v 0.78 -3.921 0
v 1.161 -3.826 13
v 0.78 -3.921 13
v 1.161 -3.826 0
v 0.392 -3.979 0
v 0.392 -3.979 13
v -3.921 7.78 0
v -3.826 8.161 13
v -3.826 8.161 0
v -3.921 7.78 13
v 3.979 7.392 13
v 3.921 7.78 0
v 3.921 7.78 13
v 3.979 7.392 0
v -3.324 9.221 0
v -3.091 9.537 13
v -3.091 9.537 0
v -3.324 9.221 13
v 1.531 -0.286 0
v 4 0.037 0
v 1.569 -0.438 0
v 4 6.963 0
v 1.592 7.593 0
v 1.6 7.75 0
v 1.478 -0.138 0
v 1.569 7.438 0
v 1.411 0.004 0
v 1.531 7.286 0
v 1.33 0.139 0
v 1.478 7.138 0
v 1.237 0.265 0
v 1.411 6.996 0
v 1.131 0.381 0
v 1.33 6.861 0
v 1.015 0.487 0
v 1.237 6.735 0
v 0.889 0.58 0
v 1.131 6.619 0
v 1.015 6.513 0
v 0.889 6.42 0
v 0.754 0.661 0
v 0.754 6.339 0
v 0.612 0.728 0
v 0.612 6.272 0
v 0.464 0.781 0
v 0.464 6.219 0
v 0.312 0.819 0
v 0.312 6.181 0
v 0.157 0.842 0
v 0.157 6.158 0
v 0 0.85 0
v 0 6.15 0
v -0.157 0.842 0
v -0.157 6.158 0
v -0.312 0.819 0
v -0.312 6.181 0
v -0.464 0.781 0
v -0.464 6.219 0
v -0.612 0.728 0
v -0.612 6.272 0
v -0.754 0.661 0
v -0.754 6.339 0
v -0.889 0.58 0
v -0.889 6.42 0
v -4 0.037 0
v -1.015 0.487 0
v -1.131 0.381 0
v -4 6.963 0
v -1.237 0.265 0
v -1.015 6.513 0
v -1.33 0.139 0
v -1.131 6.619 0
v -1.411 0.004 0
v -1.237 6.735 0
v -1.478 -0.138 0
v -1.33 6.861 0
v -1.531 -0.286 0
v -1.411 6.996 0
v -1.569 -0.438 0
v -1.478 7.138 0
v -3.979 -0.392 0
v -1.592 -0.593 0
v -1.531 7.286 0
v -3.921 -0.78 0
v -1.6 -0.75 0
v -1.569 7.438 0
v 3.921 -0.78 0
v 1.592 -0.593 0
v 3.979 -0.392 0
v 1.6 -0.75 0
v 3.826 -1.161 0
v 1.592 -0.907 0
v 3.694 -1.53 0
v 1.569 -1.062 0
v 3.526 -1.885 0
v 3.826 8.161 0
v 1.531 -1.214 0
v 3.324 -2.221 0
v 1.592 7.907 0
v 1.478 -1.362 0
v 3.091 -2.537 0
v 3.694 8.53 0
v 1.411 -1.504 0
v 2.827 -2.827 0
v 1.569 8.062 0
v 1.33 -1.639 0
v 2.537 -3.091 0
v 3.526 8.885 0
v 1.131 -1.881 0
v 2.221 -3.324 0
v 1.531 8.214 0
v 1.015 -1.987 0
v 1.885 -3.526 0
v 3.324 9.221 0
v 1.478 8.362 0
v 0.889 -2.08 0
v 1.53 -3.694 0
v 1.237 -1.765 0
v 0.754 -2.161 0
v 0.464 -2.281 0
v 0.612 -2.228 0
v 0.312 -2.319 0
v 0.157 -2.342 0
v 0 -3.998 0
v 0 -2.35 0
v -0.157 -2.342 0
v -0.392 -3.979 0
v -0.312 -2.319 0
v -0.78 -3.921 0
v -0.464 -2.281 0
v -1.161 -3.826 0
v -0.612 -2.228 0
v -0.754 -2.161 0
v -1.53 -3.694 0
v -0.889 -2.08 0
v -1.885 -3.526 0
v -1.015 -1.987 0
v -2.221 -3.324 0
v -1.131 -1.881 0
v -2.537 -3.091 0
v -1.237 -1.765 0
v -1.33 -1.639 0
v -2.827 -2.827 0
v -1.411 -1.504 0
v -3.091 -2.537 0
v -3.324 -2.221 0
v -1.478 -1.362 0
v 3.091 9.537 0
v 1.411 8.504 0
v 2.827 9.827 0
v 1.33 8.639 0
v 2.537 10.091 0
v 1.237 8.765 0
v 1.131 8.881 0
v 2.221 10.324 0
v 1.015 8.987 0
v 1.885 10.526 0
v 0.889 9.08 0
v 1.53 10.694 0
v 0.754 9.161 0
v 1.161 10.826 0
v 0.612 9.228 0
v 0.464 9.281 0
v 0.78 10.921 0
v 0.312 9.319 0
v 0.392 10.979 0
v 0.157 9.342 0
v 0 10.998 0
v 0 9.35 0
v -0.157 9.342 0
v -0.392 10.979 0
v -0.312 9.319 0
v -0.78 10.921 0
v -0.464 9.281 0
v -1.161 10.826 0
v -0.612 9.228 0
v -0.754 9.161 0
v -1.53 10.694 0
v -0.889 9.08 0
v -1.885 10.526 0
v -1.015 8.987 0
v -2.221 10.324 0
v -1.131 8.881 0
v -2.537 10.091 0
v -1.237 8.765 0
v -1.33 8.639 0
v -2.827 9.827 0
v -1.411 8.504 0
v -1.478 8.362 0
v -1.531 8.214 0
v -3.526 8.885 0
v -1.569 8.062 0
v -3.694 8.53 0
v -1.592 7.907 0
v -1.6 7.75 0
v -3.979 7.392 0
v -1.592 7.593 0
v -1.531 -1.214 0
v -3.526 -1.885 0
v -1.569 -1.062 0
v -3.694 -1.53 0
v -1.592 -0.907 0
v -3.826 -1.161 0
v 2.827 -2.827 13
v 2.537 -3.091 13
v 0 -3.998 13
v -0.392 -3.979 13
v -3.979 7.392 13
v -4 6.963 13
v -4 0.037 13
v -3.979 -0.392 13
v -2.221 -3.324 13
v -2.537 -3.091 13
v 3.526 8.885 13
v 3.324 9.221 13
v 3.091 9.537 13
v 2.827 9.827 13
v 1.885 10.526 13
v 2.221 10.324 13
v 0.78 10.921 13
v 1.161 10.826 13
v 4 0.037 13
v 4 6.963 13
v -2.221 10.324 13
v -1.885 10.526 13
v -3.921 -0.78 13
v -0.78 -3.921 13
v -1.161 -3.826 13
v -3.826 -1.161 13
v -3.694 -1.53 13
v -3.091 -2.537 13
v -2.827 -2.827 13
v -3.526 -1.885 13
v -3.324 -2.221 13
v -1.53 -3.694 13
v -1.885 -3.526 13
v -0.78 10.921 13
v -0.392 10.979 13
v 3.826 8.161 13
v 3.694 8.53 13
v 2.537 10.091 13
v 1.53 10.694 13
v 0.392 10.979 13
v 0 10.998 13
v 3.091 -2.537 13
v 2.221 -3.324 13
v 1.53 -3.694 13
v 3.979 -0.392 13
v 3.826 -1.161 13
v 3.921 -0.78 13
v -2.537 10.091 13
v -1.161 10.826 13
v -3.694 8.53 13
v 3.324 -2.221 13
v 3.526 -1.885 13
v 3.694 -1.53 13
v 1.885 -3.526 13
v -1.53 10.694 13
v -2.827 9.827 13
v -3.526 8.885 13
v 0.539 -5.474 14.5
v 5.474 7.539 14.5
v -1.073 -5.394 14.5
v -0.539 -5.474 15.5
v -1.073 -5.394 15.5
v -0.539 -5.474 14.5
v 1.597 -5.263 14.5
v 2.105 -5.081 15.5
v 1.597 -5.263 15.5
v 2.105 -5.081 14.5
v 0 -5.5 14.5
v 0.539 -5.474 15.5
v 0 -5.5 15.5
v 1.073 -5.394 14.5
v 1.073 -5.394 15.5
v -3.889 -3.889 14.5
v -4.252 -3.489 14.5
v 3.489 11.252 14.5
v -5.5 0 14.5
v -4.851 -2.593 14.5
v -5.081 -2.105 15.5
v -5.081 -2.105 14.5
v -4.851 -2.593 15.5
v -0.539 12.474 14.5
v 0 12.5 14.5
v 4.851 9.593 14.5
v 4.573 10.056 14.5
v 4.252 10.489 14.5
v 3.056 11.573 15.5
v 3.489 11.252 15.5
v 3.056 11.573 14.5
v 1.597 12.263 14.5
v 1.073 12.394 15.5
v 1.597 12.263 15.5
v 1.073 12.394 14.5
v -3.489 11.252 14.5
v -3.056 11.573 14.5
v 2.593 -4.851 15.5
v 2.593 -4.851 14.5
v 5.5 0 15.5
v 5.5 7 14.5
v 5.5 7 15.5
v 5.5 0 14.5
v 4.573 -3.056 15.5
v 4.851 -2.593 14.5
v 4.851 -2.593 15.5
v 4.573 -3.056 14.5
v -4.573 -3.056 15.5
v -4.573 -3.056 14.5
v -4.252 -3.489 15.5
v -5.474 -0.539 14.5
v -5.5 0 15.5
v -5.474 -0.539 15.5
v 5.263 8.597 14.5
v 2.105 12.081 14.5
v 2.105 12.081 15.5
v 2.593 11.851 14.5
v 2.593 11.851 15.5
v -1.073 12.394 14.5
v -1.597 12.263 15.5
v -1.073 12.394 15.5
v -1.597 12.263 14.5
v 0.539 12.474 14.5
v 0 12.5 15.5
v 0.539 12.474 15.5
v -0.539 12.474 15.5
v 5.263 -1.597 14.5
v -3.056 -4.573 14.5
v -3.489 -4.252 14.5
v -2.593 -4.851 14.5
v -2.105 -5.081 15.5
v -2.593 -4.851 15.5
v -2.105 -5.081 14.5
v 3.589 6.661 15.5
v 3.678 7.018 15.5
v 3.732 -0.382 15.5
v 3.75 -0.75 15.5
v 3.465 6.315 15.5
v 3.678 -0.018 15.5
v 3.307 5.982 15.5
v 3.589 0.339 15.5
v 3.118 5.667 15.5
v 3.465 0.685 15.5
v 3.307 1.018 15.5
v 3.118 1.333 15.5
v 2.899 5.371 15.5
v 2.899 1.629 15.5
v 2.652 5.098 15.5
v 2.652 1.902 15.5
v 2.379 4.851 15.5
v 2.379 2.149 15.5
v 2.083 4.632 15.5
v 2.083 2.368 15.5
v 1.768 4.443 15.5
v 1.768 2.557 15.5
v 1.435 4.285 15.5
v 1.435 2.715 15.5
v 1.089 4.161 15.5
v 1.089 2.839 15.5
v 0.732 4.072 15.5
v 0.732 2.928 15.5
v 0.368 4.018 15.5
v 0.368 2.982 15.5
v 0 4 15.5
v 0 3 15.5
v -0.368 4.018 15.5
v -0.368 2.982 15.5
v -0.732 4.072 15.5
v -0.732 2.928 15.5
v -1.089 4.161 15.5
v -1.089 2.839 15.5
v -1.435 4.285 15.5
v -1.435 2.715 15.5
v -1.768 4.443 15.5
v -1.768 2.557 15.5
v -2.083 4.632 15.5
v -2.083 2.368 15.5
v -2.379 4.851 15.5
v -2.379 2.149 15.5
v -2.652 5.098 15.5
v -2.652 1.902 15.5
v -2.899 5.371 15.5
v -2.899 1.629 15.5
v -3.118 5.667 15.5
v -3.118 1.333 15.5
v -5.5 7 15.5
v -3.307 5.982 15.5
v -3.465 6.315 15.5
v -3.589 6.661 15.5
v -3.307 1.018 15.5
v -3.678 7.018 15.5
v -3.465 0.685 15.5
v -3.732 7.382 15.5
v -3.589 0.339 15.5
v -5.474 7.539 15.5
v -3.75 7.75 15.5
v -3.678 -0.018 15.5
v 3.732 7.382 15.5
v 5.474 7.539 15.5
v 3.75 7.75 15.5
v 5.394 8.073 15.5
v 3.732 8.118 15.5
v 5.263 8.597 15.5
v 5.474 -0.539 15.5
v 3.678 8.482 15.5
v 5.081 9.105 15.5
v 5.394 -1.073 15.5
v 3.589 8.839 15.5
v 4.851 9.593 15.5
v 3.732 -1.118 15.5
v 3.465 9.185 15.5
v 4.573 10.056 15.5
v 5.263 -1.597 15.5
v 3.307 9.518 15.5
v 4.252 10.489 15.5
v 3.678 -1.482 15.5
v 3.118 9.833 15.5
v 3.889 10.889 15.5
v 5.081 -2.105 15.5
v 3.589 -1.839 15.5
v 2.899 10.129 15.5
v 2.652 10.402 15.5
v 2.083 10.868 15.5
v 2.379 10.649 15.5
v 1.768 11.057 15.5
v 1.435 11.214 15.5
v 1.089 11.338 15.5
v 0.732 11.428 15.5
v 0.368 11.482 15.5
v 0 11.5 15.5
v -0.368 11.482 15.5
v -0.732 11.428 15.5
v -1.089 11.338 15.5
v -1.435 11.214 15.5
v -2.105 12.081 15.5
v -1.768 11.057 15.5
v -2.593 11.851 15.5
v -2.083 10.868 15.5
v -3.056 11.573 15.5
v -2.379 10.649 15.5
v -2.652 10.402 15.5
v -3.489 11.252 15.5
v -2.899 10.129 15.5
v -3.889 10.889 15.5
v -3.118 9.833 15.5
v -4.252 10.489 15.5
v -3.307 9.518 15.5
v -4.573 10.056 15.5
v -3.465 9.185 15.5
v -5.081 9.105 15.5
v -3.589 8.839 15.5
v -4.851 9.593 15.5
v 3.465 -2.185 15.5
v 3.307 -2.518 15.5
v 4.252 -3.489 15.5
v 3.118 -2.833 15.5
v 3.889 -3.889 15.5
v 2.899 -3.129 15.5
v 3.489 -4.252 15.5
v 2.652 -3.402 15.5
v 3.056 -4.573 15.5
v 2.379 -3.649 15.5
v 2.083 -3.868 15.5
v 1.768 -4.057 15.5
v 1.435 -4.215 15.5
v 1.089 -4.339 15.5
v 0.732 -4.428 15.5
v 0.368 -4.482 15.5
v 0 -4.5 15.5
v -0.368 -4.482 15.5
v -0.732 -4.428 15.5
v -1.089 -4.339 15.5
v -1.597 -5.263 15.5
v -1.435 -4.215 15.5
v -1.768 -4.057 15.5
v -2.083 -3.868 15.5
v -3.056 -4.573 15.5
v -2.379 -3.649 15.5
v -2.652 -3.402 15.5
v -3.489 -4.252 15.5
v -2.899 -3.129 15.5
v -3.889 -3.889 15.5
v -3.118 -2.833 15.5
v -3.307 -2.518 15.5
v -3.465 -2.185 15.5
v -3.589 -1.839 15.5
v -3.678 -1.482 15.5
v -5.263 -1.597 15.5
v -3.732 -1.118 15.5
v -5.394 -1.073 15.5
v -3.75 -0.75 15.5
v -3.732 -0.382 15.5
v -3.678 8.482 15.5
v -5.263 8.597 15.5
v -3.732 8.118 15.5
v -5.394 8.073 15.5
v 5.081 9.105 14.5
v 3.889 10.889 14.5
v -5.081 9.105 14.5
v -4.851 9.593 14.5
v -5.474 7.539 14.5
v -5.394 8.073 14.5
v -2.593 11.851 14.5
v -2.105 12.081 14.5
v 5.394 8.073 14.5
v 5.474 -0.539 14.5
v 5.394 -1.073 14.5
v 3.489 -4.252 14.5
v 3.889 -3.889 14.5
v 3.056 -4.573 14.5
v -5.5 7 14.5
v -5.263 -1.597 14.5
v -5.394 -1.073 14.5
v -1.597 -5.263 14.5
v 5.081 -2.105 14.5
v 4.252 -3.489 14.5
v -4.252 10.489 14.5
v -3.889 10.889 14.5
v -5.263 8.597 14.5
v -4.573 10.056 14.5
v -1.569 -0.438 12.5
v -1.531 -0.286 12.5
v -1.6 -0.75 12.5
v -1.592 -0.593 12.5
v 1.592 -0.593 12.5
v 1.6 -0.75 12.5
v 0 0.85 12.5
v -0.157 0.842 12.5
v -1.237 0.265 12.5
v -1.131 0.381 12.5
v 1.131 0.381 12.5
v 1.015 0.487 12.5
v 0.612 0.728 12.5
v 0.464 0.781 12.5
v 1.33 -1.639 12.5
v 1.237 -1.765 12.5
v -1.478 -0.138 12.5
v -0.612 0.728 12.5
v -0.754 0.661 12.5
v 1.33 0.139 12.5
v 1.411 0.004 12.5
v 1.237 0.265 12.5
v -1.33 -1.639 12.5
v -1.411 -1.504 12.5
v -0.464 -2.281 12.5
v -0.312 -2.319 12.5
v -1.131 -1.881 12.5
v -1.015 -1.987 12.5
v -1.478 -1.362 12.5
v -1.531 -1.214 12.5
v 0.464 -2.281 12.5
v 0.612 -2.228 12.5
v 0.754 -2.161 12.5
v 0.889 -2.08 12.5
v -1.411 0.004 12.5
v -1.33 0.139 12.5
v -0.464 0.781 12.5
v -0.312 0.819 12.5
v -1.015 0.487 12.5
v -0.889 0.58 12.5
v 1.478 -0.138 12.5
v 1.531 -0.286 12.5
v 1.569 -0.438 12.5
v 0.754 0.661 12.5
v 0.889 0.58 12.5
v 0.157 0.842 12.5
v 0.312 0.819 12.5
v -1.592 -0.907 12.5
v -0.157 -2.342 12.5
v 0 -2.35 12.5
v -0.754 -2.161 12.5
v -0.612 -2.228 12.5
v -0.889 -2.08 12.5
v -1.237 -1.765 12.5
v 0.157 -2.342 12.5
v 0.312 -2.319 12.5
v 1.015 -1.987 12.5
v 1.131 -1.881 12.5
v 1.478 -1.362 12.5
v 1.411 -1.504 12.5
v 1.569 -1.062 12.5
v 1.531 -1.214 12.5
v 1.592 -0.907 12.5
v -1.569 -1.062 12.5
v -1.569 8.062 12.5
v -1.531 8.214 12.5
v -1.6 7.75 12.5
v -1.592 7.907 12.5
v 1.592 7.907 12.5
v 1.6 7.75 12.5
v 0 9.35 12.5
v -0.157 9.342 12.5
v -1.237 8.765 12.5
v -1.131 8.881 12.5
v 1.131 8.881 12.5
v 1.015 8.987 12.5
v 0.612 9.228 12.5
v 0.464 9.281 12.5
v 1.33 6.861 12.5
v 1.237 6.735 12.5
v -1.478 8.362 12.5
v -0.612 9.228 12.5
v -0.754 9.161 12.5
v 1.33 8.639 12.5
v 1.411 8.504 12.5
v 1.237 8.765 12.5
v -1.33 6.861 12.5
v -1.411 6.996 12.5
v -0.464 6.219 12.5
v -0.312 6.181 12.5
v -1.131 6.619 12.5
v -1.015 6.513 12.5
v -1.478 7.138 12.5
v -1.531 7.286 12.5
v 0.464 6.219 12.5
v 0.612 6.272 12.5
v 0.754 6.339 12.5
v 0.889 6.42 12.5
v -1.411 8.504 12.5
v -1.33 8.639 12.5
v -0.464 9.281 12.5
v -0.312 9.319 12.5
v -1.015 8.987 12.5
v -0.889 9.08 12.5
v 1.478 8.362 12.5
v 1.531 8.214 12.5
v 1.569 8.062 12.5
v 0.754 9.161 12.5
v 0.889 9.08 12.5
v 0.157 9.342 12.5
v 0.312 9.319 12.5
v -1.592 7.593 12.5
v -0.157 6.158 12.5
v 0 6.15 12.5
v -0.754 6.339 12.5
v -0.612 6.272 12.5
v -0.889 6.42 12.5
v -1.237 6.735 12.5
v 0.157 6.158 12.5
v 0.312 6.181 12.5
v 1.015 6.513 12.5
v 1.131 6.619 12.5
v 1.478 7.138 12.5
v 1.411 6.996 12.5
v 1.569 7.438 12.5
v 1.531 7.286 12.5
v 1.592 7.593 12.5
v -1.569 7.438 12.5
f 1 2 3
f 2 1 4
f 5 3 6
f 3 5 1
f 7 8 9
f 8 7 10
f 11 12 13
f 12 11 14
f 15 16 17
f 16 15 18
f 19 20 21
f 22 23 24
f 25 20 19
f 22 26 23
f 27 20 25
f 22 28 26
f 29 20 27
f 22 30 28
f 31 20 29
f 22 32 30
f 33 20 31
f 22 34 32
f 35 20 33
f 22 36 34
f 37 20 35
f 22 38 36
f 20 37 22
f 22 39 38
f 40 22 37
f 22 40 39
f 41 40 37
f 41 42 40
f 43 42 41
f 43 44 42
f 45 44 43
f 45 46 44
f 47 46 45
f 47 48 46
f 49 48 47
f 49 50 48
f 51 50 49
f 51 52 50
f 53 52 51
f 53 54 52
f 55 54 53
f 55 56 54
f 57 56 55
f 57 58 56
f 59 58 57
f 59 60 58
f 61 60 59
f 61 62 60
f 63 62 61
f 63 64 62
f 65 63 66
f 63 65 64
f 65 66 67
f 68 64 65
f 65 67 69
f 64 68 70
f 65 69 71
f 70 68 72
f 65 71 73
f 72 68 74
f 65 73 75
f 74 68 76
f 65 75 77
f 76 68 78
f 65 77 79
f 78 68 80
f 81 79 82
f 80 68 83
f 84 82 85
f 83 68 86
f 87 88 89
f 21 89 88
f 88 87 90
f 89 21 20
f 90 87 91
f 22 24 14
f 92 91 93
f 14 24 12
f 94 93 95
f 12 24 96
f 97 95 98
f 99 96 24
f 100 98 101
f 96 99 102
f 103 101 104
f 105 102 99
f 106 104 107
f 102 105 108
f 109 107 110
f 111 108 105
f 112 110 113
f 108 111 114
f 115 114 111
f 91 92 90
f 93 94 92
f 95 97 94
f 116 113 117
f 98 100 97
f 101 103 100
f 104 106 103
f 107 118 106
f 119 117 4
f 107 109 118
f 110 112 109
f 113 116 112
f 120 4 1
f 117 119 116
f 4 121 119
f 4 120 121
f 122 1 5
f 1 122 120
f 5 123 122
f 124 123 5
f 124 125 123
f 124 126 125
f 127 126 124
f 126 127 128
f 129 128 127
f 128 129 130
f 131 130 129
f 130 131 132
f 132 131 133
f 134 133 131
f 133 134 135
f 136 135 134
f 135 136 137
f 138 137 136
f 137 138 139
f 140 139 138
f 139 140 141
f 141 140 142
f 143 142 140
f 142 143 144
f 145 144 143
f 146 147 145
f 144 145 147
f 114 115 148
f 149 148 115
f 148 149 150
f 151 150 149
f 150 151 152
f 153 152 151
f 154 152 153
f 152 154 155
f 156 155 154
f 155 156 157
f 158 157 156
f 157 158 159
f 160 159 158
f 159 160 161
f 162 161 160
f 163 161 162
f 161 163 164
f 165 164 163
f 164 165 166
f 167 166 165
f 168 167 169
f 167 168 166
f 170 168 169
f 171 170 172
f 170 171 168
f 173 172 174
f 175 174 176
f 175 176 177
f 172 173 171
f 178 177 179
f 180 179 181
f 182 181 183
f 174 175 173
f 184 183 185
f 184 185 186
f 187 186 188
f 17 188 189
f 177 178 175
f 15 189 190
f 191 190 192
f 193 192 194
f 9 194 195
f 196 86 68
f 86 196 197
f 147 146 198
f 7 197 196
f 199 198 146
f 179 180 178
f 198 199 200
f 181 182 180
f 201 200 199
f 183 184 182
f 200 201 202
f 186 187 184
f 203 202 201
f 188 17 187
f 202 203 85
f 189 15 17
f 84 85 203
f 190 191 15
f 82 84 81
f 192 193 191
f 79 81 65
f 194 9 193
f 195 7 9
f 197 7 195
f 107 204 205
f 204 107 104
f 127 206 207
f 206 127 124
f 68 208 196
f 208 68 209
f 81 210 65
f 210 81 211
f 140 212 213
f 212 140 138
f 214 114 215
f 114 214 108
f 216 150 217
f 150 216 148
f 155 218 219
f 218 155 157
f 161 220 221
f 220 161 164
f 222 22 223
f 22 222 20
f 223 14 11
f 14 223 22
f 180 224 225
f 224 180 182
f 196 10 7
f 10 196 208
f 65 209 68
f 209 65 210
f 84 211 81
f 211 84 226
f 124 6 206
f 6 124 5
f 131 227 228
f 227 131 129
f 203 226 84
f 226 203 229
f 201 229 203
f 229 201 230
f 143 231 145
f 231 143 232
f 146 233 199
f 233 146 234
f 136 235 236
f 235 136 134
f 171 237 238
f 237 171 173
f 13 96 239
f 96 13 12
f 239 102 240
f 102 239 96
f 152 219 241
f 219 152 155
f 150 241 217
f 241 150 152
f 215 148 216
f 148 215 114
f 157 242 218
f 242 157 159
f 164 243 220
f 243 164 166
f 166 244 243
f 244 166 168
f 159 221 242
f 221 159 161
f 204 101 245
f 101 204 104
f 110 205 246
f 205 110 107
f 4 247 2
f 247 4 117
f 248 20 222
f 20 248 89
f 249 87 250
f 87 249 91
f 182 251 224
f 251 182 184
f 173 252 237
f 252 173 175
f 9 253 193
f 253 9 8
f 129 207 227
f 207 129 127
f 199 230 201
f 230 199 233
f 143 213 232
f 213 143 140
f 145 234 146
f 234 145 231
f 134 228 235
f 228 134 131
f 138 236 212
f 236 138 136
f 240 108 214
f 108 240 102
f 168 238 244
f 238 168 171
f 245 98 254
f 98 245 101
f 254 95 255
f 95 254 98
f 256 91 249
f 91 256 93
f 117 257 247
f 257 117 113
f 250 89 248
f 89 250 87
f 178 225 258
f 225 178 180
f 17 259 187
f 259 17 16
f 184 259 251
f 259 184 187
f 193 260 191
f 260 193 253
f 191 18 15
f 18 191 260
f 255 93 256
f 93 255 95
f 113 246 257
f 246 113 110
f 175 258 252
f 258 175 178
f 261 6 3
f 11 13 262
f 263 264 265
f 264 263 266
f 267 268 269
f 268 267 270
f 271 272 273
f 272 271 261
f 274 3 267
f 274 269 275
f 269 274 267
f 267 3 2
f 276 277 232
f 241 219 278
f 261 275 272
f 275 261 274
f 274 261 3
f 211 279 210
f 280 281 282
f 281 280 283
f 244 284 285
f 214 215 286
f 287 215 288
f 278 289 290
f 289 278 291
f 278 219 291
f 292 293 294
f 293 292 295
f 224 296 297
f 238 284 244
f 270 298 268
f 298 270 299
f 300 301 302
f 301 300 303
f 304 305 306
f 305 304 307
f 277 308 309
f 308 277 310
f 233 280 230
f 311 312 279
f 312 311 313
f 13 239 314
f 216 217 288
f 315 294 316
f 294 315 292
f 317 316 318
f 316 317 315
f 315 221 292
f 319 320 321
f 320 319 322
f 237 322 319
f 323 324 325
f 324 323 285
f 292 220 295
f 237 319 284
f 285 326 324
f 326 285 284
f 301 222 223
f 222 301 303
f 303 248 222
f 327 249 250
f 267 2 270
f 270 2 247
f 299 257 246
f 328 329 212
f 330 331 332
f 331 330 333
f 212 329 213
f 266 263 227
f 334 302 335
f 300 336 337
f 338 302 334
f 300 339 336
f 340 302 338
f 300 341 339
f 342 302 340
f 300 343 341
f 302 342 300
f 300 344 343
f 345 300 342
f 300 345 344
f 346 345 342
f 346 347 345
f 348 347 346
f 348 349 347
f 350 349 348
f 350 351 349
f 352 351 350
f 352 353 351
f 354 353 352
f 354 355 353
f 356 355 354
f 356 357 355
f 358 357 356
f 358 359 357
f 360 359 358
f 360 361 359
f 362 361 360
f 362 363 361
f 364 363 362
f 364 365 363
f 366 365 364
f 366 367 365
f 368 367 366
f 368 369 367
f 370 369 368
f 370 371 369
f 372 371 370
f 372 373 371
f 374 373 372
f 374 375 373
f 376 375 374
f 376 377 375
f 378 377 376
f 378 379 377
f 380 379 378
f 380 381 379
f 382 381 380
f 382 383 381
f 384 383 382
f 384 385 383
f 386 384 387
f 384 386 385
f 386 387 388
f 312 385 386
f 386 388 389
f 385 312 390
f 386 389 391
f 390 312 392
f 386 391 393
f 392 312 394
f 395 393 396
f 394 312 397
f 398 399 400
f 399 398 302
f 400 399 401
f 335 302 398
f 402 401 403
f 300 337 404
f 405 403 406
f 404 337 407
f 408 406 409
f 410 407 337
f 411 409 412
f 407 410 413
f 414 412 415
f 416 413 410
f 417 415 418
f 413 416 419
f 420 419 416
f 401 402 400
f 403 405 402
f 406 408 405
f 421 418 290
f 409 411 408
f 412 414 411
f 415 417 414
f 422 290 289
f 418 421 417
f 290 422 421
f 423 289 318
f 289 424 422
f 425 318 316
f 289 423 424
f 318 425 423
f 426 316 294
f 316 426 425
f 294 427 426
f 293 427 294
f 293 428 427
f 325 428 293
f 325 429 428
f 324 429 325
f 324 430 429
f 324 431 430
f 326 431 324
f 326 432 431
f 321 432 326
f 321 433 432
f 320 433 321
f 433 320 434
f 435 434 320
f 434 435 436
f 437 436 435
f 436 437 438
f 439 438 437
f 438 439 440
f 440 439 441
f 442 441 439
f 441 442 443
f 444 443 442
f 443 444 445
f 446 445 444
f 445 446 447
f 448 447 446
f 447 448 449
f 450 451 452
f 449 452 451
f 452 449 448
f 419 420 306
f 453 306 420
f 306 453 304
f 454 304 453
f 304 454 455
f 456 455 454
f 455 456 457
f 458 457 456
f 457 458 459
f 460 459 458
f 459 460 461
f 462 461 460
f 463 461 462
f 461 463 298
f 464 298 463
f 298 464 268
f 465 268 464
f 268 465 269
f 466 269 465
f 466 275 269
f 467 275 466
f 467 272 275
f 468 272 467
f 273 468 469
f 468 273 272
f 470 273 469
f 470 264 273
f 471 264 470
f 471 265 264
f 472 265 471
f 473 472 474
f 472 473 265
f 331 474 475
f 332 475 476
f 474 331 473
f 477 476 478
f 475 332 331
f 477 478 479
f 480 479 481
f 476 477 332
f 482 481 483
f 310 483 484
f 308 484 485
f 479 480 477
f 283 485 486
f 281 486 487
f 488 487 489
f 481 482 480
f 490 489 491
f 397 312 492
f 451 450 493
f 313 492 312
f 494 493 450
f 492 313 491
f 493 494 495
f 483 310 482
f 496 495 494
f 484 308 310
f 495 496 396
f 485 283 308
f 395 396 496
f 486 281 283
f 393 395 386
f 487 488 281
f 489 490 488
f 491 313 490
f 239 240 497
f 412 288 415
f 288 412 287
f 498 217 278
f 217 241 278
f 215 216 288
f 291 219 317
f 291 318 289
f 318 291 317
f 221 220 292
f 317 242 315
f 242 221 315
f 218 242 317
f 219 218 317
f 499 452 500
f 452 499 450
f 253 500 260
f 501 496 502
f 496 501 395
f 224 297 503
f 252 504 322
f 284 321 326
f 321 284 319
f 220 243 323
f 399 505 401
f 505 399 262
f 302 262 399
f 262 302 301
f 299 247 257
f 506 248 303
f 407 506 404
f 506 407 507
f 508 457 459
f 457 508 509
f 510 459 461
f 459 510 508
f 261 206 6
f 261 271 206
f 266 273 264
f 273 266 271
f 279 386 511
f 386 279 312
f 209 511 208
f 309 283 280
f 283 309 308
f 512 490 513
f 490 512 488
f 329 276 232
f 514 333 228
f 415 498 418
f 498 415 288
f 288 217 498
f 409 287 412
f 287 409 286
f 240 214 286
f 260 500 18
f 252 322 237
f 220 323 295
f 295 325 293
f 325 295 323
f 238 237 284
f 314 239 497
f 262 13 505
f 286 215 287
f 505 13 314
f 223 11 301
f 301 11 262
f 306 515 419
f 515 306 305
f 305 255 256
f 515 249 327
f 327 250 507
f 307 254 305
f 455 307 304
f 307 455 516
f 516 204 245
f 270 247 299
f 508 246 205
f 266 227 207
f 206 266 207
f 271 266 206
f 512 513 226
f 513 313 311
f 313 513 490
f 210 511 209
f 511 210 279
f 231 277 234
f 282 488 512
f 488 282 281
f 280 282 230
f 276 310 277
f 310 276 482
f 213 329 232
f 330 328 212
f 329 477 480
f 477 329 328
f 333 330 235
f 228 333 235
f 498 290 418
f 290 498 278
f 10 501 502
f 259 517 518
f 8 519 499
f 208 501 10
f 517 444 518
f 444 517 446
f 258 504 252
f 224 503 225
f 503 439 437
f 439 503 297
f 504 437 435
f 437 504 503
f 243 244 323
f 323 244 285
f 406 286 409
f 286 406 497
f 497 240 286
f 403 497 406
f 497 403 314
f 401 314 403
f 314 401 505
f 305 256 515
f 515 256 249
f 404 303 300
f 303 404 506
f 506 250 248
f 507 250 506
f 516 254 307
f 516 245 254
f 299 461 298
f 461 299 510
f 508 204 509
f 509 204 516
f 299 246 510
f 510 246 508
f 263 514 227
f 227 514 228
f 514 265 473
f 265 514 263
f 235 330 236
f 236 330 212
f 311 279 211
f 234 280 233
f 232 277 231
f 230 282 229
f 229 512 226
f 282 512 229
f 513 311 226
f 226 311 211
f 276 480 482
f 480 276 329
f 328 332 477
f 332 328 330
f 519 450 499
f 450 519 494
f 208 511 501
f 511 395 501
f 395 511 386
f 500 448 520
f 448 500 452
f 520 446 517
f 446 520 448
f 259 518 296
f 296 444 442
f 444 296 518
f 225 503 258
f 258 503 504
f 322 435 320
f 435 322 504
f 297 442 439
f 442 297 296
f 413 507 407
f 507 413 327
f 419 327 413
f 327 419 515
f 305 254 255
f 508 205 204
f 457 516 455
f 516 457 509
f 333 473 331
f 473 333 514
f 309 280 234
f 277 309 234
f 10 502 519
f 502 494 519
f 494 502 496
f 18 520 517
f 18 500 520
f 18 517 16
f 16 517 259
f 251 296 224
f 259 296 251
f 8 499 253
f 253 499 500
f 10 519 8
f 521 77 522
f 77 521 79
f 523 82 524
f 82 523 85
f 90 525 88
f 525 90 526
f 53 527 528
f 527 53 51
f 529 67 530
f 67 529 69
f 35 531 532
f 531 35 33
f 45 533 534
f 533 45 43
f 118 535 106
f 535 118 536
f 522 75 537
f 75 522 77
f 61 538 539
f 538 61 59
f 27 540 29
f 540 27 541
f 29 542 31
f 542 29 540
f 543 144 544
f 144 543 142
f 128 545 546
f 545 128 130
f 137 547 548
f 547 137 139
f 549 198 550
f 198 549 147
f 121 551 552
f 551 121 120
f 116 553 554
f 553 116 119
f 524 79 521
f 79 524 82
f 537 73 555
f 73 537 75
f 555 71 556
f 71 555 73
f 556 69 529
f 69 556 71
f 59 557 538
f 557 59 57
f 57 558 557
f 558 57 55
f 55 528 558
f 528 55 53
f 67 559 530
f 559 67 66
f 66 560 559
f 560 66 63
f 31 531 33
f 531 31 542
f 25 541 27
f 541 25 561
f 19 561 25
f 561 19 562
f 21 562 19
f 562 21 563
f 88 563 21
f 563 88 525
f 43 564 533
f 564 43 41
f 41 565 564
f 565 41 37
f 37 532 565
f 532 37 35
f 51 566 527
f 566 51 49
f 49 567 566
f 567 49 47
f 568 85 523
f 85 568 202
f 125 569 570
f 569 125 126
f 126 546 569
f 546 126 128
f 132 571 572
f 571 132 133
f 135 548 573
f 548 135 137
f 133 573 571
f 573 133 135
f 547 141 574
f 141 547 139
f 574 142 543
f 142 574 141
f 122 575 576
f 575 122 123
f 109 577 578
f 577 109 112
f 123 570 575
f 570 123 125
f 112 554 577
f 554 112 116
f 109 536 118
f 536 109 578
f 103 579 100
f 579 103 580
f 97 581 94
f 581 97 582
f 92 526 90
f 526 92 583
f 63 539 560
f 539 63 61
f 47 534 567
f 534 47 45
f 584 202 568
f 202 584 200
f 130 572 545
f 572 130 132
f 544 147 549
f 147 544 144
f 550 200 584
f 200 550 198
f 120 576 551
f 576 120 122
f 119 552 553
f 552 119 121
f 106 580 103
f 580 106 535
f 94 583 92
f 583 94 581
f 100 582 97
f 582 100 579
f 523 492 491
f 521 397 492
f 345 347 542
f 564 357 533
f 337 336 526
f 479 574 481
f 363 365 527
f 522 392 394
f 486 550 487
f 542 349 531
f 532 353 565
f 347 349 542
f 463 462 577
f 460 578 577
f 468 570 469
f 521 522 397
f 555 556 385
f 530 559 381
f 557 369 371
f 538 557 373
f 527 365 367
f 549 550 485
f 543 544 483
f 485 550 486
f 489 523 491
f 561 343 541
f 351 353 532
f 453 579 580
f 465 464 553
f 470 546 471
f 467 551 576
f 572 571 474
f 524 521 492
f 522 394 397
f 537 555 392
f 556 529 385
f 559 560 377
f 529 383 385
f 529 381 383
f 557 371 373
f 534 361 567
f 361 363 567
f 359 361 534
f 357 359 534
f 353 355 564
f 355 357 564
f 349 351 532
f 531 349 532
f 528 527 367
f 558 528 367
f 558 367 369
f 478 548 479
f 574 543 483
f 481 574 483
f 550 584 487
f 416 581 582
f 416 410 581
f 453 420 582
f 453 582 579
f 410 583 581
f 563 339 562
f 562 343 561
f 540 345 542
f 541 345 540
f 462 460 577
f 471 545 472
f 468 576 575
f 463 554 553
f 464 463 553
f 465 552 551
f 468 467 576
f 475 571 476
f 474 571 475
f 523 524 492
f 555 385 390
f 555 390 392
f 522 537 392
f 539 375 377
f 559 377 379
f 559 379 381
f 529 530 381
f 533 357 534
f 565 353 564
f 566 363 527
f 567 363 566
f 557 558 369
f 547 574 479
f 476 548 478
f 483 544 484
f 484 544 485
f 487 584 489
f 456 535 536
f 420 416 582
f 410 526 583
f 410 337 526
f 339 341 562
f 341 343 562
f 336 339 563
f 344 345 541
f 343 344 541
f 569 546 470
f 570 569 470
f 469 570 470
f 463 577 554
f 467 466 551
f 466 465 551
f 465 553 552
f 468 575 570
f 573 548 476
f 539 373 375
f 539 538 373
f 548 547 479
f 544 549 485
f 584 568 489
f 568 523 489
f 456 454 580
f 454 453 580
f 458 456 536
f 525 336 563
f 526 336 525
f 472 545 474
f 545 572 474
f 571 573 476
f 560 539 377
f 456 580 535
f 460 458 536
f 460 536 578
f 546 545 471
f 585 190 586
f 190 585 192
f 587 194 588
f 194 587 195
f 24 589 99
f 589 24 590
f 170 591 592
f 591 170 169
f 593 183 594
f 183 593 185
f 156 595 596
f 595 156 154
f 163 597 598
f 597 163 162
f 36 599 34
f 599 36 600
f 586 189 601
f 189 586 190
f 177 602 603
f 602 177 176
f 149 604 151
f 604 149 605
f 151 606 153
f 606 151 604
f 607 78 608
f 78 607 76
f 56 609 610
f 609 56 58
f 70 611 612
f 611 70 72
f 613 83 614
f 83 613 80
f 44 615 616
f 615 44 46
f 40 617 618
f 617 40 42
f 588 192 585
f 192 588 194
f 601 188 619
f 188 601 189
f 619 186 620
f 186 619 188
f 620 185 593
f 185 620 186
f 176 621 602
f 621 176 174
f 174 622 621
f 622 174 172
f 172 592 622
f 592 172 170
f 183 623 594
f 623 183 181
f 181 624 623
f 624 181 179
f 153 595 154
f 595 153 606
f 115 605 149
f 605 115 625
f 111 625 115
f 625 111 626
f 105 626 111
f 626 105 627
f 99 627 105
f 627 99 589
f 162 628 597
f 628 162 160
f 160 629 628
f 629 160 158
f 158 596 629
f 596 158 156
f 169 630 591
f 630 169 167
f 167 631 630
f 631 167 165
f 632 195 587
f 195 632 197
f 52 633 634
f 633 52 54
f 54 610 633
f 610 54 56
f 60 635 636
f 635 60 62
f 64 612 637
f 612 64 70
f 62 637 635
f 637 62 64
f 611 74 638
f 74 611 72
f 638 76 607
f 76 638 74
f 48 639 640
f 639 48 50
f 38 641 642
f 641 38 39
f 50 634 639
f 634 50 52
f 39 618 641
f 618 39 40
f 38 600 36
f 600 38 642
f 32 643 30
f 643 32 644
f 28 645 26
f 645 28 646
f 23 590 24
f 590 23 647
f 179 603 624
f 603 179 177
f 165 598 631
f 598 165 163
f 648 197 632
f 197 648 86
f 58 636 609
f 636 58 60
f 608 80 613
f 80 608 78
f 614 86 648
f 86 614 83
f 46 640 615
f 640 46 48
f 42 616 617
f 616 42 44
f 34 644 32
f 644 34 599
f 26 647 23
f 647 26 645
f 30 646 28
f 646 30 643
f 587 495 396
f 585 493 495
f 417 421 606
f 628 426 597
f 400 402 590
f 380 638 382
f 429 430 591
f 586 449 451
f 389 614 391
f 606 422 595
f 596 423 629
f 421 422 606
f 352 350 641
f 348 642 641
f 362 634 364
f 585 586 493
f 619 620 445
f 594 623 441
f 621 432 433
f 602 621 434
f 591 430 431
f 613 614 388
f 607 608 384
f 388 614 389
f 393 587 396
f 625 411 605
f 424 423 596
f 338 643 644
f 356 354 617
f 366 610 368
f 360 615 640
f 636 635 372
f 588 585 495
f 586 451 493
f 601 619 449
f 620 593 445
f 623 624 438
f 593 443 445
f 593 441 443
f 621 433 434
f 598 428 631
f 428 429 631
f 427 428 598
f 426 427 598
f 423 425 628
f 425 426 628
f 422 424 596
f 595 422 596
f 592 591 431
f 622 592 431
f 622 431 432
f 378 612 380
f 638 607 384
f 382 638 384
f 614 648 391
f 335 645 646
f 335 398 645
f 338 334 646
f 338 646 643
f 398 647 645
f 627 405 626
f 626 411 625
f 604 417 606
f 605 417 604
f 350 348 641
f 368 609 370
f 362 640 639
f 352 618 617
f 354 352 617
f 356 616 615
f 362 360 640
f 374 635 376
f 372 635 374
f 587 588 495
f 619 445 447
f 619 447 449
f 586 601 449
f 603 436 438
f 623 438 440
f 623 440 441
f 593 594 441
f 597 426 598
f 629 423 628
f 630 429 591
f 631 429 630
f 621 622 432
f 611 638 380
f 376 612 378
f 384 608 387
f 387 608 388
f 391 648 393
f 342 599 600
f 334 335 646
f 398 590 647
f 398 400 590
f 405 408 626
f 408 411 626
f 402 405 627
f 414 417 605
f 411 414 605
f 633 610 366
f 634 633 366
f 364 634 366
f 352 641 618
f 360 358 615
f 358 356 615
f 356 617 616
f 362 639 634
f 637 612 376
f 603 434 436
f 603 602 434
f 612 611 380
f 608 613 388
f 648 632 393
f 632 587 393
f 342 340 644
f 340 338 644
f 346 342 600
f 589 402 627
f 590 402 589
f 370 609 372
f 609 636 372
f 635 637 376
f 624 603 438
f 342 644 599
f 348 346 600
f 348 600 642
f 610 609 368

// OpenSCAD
// Wall mount for the Augusta Mini-Ryoba saw (150mm)

mounting_hole_x = 11;
mounting_hole_y = 18;
spacing_from_wall = 13;
offset = 1.5;

$fn = 64;

module mounting_peg_2d() {
    hull() {
        circle(d= mounting_hole_x);
        translate([0, mounting_hole_y - mounting_hole_x])
            circle(d = mounting_hole_x);
    }
}

module mounting_peg_complete() {
    linear_extrude(height = spacing_from_wall)
        offset(delta = -offset)
            mounting_peg_2d();
    hull() {
        translate([0, 0, spacing_from_wall])
            linear_extrude(height = 0.1)
                offset(delta = -offset)
                    mounting_peg_2d();
        translate([0, 0, spacing_from_wall + offset])
            linear_extrude(height = 1)
                    mounting_peg_2d();
    }
}

module screw() {
    rotate([0, 180, 0]) {
        cylinder(d=3.2, h=spacing_from_wall + 2 * offset);
        cylinder(d1=7.5, d2=3.2, h=3);
    }
}

difference() {
    mounting_peg_complete();
    translate([0, -offset/2, spacing_from_wall + offset + 1])
        screw();
    translate([0, mounting_hole_y - mounting_hole_x + offset/2, spacing_from_wall + offset + 1])
        screw();
}
